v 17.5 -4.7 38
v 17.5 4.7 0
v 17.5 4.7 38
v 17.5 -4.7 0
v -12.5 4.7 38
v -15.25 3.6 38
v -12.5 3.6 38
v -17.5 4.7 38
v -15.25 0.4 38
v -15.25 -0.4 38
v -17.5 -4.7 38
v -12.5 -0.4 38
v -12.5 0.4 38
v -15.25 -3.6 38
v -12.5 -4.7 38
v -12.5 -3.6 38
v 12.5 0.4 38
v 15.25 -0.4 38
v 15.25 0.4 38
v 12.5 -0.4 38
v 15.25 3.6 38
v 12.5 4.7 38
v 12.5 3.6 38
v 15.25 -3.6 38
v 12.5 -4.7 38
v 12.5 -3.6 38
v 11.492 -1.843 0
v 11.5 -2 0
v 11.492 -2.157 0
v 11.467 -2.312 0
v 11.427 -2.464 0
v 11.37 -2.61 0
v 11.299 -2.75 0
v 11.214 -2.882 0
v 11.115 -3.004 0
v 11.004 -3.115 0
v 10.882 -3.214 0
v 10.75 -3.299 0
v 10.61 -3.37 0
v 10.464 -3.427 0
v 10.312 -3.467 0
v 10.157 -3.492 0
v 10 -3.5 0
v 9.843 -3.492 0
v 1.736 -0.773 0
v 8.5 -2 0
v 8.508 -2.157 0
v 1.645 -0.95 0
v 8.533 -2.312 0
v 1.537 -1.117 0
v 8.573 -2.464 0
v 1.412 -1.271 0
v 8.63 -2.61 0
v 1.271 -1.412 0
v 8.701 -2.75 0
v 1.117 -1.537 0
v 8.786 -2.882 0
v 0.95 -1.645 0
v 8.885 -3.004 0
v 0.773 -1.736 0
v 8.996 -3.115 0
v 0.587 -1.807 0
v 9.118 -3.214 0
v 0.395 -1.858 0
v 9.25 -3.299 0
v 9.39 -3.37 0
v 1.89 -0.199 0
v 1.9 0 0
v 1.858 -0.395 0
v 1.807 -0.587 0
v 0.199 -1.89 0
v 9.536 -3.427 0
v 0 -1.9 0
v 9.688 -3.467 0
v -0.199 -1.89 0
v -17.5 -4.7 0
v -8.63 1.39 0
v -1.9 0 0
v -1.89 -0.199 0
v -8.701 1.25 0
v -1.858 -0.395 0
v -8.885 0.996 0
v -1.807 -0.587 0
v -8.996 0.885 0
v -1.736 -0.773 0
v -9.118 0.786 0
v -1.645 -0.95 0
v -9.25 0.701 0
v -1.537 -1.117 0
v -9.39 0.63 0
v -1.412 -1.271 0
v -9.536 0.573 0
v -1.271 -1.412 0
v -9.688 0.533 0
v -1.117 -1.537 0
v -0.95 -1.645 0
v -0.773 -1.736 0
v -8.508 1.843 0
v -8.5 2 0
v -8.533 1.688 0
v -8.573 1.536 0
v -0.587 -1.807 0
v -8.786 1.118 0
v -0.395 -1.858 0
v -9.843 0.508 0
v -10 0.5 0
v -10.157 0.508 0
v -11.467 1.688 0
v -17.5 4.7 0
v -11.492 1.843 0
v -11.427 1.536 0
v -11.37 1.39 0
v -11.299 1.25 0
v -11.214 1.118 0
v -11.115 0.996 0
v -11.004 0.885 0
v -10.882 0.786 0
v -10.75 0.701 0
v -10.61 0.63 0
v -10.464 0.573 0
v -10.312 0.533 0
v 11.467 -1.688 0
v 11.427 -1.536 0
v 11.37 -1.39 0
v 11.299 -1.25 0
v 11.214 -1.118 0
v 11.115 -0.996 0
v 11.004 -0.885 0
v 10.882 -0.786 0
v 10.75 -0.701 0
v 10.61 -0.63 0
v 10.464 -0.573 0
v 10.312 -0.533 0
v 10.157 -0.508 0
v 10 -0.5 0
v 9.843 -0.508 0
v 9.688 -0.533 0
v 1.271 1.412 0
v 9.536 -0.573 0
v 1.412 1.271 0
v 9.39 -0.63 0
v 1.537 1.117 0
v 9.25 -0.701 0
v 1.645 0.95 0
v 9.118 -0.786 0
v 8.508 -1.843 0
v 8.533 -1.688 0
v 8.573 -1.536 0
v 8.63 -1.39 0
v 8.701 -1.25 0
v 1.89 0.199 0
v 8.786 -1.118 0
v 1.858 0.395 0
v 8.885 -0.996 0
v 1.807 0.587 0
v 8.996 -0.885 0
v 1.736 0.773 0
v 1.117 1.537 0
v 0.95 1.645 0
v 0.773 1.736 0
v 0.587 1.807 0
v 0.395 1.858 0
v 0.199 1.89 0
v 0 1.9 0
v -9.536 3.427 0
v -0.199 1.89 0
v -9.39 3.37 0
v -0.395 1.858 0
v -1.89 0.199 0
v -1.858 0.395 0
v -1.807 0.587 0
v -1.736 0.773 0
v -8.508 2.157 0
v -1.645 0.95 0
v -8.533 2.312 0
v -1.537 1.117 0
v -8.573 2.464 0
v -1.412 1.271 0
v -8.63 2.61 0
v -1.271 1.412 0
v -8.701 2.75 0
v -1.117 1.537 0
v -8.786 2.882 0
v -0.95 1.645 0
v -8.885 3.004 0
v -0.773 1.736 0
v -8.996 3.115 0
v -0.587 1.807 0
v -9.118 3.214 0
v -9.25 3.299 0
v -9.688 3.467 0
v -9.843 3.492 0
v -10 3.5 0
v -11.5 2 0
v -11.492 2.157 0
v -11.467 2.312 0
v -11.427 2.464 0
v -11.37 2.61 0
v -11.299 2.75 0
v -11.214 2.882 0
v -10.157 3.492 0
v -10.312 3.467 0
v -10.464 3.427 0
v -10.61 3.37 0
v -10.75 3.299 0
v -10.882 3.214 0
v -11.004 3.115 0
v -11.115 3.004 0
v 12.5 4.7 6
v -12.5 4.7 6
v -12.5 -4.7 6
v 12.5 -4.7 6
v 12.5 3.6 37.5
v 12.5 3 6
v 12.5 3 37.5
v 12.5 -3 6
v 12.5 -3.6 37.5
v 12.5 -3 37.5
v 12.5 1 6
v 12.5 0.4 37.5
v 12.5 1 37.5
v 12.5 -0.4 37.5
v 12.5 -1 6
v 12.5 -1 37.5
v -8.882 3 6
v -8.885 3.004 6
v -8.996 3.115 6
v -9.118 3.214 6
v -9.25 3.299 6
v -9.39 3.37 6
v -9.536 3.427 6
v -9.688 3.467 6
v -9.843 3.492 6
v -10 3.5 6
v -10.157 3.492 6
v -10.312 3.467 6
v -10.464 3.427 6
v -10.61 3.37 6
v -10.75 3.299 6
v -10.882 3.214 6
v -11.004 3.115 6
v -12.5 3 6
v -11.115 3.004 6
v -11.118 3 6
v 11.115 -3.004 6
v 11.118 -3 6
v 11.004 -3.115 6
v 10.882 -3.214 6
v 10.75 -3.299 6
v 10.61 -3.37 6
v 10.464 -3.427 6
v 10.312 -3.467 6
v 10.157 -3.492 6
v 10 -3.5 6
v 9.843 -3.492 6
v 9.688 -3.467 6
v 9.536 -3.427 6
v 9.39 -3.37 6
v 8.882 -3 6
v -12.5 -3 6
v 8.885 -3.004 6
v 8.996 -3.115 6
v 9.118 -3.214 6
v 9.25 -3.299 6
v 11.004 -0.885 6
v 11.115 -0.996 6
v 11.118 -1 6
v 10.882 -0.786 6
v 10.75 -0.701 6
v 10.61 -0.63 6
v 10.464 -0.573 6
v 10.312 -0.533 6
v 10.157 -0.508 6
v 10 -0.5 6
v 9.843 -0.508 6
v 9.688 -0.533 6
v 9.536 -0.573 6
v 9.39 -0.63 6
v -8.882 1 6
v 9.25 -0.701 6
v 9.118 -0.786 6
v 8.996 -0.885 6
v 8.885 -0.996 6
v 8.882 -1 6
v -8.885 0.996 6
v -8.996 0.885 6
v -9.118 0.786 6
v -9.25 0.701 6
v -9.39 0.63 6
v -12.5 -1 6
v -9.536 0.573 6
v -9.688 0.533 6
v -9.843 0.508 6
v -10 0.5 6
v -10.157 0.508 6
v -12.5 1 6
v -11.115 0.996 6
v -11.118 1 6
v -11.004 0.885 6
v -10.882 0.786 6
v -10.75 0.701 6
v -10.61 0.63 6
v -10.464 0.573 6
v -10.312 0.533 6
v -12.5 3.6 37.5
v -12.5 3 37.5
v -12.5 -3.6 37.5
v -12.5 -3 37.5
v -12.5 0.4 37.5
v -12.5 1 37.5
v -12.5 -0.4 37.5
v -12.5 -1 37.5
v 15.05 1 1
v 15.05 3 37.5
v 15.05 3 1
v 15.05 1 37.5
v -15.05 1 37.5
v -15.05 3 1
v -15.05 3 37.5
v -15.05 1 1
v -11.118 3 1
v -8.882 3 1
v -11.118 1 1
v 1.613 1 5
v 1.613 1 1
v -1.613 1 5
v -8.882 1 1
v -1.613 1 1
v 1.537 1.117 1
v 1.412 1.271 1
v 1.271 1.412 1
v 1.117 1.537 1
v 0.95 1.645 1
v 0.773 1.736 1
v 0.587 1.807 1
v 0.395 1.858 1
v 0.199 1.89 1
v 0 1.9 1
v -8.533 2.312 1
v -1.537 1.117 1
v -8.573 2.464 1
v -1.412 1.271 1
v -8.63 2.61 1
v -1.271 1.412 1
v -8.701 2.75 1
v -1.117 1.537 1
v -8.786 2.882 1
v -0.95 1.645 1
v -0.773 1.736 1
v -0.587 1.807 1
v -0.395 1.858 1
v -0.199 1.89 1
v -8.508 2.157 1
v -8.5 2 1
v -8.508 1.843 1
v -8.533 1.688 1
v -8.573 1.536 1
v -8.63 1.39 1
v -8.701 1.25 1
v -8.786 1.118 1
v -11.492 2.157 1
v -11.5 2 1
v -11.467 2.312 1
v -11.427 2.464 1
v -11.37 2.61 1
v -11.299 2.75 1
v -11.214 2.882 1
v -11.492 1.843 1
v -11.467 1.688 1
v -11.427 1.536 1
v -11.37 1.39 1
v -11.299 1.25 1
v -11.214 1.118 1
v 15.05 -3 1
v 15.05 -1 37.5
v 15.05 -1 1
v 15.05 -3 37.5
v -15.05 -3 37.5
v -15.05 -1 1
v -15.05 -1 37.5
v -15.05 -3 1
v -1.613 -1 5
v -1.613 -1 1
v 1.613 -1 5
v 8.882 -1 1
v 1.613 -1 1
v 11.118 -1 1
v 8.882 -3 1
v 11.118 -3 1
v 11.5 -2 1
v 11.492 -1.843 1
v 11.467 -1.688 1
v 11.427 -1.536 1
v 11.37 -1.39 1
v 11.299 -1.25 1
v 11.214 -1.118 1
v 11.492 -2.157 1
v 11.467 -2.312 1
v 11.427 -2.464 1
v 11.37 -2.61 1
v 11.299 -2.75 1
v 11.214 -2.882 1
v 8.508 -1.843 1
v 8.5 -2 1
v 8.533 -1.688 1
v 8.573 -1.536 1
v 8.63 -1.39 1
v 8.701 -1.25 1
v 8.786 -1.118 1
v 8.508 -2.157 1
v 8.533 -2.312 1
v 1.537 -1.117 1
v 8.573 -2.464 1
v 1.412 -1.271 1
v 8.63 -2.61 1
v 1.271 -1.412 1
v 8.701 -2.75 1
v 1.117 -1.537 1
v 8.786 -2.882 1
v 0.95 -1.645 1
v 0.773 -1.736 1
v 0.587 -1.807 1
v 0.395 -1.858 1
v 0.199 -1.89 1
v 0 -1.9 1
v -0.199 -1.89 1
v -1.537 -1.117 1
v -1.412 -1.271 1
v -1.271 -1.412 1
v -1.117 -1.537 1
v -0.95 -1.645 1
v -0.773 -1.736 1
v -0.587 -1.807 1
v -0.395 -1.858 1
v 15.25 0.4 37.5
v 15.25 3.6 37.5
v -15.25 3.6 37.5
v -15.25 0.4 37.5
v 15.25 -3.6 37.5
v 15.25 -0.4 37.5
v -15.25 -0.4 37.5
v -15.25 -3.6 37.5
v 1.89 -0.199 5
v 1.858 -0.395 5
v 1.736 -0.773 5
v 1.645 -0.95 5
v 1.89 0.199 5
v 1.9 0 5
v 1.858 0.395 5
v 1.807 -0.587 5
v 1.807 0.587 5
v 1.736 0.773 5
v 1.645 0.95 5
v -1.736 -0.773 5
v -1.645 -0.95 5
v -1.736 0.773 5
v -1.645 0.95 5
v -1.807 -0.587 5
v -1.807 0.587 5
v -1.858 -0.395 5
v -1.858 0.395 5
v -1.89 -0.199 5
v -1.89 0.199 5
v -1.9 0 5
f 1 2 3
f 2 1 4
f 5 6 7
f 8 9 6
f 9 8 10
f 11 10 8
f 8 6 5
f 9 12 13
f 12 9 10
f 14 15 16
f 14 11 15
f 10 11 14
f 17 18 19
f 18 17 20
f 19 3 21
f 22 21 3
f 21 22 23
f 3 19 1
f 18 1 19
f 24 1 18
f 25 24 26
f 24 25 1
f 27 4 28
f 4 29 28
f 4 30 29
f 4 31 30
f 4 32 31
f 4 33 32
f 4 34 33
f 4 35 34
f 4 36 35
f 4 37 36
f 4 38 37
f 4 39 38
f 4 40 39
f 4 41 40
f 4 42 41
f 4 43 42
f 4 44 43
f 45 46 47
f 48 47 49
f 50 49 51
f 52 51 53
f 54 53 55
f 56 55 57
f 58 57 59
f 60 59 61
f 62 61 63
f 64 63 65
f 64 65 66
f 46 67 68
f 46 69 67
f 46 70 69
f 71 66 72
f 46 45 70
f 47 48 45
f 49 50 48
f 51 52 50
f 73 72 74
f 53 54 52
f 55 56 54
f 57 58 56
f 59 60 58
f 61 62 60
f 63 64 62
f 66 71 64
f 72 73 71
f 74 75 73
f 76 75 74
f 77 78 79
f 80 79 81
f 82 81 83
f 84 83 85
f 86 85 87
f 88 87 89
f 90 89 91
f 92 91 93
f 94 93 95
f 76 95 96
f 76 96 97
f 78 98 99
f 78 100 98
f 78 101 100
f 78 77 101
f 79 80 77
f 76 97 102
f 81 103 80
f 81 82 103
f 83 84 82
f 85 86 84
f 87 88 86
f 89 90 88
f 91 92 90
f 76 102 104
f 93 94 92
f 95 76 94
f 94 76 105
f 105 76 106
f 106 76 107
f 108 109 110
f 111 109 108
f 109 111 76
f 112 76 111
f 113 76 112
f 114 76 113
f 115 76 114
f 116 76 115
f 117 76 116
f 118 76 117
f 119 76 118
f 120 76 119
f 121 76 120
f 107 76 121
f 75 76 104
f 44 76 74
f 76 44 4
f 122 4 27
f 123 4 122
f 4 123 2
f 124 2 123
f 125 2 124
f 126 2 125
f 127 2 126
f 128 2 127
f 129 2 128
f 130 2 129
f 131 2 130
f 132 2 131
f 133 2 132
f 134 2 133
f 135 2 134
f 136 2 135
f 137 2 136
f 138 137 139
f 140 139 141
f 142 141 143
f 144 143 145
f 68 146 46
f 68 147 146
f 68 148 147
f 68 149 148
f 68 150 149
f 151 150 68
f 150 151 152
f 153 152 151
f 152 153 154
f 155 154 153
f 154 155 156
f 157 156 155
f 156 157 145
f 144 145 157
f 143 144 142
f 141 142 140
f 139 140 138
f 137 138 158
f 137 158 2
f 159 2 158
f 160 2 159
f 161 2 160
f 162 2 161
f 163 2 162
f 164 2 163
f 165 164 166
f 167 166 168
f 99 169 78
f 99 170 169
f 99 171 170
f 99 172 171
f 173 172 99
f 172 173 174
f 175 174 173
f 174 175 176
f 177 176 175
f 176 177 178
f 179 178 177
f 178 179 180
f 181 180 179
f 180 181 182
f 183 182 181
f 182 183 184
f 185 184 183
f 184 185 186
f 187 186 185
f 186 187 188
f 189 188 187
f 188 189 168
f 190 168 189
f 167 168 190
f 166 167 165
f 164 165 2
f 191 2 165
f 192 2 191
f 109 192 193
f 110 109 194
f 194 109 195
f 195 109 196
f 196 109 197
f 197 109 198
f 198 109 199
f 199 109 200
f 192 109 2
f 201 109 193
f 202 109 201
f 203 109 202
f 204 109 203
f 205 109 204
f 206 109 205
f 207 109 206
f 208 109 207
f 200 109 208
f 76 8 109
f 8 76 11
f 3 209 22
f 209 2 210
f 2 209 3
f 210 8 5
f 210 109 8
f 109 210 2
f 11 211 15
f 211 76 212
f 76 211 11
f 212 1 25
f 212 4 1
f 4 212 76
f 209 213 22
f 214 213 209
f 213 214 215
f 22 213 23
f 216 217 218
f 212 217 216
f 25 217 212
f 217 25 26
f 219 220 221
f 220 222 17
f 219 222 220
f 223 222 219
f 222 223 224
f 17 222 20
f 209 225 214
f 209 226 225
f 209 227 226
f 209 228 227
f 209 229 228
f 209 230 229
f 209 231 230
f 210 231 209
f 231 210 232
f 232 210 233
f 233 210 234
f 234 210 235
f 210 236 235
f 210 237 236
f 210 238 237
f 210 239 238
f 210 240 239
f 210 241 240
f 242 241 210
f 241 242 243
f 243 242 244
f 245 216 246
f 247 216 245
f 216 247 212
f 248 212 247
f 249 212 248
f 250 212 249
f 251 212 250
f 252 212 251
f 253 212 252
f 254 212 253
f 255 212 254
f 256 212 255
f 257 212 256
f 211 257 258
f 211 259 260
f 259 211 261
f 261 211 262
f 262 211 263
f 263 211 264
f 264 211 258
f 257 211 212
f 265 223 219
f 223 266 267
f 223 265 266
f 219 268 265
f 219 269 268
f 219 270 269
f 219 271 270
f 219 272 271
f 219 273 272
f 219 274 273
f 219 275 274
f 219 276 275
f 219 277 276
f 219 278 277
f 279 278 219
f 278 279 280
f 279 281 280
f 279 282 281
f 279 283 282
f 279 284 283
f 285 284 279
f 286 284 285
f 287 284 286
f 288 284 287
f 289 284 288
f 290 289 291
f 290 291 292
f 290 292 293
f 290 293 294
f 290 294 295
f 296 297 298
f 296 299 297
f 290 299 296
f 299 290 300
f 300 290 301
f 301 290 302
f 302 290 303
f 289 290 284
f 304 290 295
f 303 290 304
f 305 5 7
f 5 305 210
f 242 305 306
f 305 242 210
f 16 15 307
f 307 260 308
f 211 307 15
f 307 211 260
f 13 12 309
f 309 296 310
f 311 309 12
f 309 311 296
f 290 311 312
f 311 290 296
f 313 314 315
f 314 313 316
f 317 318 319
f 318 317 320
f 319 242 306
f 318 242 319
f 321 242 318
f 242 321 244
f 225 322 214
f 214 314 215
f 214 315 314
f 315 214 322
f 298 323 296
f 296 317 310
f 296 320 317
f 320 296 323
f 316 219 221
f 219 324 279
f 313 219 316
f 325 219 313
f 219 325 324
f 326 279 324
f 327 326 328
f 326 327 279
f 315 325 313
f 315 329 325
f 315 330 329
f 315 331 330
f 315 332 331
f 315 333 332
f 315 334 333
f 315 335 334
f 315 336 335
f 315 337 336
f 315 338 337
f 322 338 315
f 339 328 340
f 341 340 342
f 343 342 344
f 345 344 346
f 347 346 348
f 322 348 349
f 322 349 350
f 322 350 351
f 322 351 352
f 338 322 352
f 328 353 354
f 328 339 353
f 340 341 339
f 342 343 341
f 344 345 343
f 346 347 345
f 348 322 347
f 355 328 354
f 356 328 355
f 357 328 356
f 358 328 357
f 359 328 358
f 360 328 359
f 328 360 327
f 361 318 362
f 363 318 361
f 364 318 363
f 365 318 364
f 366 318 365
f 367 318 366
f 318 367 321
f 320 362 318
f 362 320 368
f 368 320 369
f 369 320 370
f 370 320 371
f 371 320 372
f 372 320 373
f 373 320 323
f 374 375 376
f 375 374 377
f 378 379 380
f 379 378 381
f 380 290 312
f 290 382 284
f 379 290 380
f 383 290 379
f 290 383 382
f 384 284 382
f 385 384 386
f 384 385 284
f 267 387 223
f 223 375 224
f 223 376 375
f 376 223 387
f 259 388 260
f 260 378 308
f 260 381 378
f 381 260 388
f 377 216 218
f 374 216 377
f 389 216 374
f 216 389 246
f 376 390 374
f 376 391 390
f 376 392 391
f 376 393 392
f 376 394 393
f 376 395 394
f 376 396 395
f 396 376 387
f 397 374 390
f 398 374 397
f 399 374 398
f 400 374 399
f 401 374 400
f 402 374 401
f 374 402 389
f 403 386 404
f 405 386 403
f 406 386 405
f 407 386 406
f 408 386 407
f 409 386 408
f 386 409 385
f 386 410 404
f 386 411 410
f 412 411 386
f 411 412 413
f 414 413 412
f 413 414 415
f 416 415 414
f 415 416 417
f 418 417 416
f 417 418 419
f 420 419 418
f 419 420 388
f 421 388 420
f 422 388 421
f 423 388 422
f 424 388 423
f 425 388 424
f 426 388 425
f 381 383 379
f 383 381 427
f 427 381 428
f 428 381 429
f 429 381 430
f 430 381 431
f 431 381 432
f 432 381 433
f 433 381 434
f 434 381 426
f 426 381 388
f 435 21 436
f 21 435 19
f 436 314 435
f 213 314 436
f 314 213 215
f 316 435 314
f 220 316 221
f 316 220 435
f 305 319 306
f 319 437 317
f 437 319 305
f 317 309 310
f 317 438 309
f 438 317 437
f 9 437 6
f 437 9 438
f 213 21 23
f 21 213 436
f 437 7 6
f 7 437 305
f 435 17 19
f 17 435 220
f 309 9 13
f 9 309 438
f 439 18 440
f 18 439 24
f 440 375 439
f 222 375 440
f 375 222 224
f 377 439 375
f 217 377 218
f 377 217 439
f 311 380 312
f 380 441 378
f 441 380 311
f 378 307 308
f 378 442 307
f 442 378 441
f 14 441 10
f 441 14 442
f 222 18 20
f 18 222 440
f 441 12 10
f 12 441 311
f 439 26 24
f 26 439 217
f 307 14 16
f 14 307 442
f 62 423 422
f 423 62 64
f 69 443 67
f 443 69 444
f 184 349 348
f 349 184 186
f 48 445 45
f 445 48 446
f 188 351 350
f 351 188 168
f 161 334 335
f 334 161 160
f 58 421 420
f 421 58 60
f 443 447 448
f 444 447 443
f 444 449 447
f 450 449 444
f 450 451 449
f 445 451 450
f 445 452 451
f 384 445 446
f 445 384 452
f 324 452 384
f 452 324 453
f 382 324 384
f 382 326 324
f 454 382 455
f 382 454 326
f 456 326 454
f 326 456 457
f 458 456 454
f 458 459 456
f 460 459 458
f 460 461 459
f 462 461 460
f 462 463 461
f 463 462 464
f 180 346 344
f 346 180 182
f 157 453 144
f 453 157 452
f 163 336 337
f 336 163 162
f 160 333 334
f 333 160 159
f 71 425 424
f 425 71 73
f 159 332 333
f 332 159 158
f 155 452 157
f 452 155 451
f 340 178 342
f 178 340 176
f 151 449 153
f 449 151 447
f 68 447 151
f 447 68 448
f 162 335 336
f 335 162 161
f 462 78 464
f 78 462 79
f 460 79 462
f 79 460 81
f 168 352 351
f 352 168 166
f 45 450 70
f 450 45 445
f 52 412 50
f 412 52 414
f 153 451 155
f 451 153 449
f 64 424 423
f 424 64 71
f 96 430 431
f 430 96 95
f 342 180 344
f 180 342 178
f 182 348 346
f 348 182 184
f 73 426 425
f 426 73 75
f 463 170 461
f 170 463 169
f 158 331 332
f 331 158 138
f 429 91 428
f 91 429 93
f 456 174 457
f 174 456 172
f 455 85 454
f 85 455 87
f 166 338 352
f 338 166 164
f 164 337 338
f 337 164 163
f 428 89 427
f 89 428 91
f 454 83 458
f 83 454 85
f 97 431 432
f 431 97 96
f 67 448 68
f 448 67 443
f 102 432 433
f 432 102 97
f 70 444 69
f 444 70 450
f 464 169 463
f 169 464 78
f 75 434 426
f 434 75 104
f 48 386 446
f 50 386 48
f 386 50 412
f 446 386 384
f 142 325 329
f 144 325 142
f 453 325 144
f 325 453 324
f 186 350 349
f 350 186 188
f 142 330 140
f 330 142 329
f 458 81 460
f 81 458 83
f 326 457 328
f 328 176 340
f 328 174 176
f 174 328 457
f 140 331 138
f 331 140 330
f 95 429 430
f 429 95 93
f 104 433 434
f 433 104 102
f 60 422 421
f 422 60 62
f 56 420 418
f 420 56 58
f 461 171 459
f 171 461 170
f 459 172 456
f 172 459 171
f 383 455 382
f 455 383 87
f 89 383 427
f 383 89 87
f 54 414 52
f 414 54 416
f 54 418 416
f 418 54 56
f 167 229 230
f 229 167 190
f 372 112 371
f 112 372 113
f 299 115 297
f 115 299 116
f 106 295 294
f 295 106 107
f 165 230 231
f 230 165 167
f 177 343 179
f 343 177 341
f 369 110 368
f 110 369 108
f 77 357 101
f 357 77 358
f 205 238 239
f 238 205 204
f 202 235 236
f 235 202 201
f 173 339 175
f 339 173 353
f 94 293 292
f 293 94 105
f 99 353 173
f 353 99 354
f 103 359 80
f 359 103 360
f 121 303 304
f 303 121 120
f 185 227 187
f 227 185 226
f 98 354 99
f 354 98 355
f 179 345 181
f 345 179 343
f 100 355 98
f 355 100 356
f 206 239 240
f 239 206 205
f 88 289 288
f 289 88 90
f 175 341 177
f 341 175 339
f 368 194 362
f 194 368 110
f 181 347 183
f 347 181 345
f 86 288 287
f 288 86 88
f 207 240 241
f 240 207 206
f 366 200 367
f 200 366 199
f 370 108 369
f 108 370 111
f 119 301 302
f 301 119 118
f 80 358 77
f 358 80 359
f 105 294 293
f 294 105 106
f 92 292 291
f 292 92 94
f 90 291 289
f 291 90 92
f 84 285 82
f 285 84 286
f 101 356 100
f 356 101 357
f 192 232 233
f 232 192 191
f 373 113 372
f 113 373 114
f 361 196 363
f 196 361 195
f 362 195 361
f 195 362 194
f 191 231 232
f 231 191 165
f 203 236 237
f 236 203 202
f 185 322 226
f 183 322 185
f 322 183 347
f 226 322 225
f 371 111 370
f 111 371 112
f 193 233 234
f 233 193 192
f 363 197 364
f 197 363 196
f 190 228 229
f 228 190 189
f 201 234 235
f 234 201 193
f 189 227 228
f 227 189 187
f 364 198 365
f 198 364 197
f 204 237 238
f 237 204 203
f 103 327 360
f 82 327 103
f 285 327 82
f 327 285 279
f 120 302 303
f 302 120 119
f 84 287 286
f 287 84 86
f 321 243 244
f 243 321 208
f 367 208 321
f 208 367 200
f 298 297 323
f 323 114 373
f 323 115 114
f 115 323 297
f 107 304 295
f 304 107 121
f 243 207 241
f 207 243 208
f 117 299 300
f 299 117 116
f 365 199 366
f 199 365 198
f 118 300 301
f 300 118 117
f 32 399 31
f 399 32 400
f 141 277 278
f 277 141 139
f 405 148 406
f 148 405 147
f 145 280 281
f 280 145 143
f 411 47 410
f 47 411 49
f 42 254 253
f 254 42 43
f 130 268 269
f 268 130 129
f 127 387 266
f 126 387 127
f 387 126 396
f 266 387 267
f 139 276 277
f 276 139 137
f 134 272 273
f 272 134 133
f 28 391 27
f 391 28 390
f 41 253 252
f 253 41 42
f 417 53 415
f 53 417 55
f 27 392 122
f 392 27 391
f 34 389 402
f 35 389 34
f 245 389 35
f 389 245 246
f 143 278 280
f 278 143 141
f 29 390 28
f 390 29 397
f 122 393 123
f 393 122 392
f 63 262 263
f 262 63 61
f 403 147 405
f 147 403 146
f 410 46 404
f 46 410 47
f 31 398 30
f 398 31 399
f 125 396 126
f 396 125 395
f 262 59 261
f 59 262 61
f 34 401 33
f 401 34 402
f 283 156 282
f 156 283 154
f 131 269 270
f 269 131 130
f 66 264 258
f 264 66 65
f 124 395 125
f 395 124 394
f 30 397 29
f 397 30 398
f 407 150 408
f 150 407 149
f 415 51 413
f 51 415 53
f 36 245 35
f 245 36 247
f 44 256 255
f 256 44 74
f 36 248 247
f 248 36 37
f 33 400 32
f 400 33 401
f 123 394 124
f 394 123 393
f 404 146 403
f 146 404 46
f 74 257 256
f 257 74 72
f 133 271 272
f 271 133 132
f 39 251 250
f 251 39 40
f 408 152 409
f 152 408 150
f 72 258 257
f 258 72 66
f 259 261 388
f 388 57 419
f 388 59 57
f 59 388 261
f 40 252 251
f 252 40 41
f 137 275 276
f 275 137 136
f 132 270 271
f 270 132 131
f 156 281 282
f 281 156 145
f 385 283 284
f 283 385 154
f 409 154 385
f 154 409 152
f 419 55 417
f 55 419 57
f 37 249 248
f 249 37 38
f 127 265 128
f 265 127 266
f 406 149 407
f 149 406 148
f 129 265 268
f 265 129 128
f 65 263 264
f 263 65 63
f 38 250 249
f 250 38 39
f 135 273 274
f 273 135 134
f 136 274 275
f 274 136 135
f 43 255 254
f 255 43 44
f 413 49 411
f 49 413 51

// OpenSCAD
// Suporte em Moldura para Placas de Titânio de Eletrólise - Projeto IARA
// Design "Window Frame" com encaixe por pressão e montagem inferior para ventosa
// Unidades: Milímetros (mm)

/* [Dimensões das Placas de Titânio] */
// Largura da placa (mm). Ex: 30 para a placa de 3x4
plate_width = 30.0;
// Espessura da chapa de titânio (mm)
plate_thickness = 1.9;
// Distância exata desejada entre as duas placas (mm)
gap_between_plates = 2.0;

/* [Dimensões da Moldura (Frame)] */
// Altura da moldura plástica.
// Com 36mm, uma placa de 40mm fica um tiquinho exposta no topo (embora agora os fios passarão por baixo)
frame_height = 38.0;

// O quanto a moldura cobre a esquerda e a direita da placa (mm)
side_overlap = 2.5;

// Espessura do "chão" da moldura. Fica na parte inferior para ter massa pro parafuso da ventosa.
// O rasgo da placa desce (wire_seal_depth) dentro desse chão → sobra (bottom_bar_height - wire_seal_depth) de parede sólida no fundo.
bottom_bar_height = 6.0;

// Espessura das paredes externas (Frente e Trás)
wall_thickness = 1.7;

// Tolerância extra no rasgo (slot) pro encaixe de "presilha por pressão" (fricção)
tolerance = 0.1;

/* [Furos para os Fios de Contato (Na Base Inferior)] */
// Diâmetro dos furos para passar os fios (para poder fixar eles por baixo das placas)
wire_hole_d = 3;
// Profundidade da cava na base do furo (para aplicar silicone de aquário e isolar o cobre)
wire_seal_depth = 5.0;

/* [Montagem da Ventosa na Face de Baixo] */
// 1 = Gerar um Pino (para encaixar em uma ventosa de borracha com furo)
// 2 = Gerar um Furo (para ventosas que possuem parafuso ou rosca embutida)
ventosa_mount_type = 2;

// --- Configurações se usar PINO (ventosa_mount_type = 1) ---
ventosa_neck_d = 5.5;
ventosa_head_d = 8.5;
ventosa_neck_h = 4.0;

// --- Configurações se usar FURO/PARAFUSO (ventosa_mount_type = 2) ---
// Exemplo: 4.0 para furar livre p/ M4, ou 3.8mm para roscar apertado direto no plástico M4.
ventosa_screw_hole_d = 3.8;
ventosa_screw_hole_depth = 5.0;

/* [Hidden] */
$fn = 60;
slot_w = plate_thickness + tolerance;

total_w = plate_width + (side_overlap * 2);
total_d = gap_between_plates + (slot_w * 2) + (wall_thickness * 2);
total_h = frame_height;

module ventosa_peg() {
  // Pescoço
  cylinder(h=ventosa_neck_h + 0.1, d=ventosa_neck_d);
  // Cabeça
  translate([0, 0, ventosa_neck_h])
    cylinder(h=2.5, d1=ventosa_head_d, d2=ventosa_neck_d - 1.0);
}

module frame() {
  difference() {
    // Corpo Base (Bloco sólido dimensionado com as medidas externas)
    translate([0, 0, total_h / 2])
      cube([total_w, total_d, total_h], center=true);

    // Recorte da Janela Central (Deixa o centro das placas 100% exposto à água!)
    translate([0, 0, bottom_bar_height + total_h / 2])
      cube([plate_width - (side_overlap * 2), total_d + 2.0, total_h], center=true);

    // Fenda para a Primeira Placa (Frontal)
    translate([0, (gap_between_plates / 2) + (slot_w / 2), bottom_bar_height + total_h / 2])
      cube([plate_width + tolerance, slot_w, total_h + 2.0], center=true);
    // Cava inferior da fenda (desce wire_seal_depth no bottom_bar — aplique silicone aqui para isolar o cobre)
    translate([0, (gap_between_plates / 2) + (slot_w / 2), bottom_bar_height - wire_seal_depth / 2 + 0.5])
      cube([plate_width + tolerance, slot_w, wire_seal_depth + 1], center=true);

    // Fenda para a Segunda Placa (Traseira)
    translate([0, -(gap_between_plates / 2) - (slot_w / 2), bottom_bar_height + total_h / 2])
      cube([plate_width + tolerance, slot_w, total_h + 2.0], center=true);
    // Cava inferior da fenda (desce wire_seal_depth no bottom_bar — aplique silicone aqui para isolar o cobre)
    translate([0, -(gap_between_plates / 2) - (slot_w / 2), bottom_bar_height - wire_seal_depth / 2 + 0.5])
      cube([plate_width + tolerance, slot_w, wire_seal_depth + 1], center=true);

    // Chanfro Superior suave nas fendas
    translate([0, (gap_between_plates / 2) + (slot_w / 2), total_h + 0.5])
      cube([plate_width + 0.5, slot_w + 1.2, 2.0], center=true);
    translate([0, -(gap_between_plates / 2) - (slot_w / 2), total_h + 0.5])
      cube([plate_width + 0.5, slot_w + 1.2, 2.0], center=true);

    // --- FURO CENTRAL DA VENTOSA NA FACE DE BAIXO ---
    if (ventosa_mount_type == 2) {
      // Um furo cilíndrico na parte de baixo para rosquear o parafuso da ventosa
      translate([0, 0, -1])
        cylinder(h=ventosa_screw_hole_depth + 1.0, d=ventosa_screw_hole_d);
    }

    // --- BURACOS PARA PUXAR O FIO DE CONTATO ---
    // Para evitar curto-circuito, fiz um buraco na ESQUERDA indo para a Placa FRONTAL
    // e um buraco na DIREITA indo para a Placa TRASEIRA.
    // Desse forma os fios ficam bem separados.
    //
    // Cada furo tem uma cava de wire_seal_depth na base: insira o cobre e vede com silicone de aquário.

    // Furo Esquerdo (Placa Frontal) — cava de silicone + canal até o rasgo
    translate([-plate_width / 3, (gap_between_plates / 2) + (slot_w / 2), -1])
      cylinder(h=wire_seal_depth + 1, d=wire_hole_d);
    translate([-plate_width / 3, (gap_between_plates / 2) + (slot_w / 2), wire_seal_depth - 1])
      cylinder(h=bottom_bar_height - wire_seal_depth + 3.0, d=wire_hole_d);

    // Furo Direito (Placa Traseira) — cava de silicone + canal até o rasgo
    translate([plate_width / 3, -(gap_between_plates / 2) - (slot_w / 2), -1])
      cylinder(h=wire_seal_depth + 1, d=wire_hole_d);
    translate([plate_width / 3, -(gap_between_plates / 2) - (slot_w / 2), wire_seal_depth - 1])
      cylinder(h=bottom_bar_height - wire_seal_depth + 3.0, d=wire_hole_d);
  }

  // Pino Adicionado se for ventosa tipo pino
  if (ventosa_mount_type == 1) {
    // Apontando para baixo (-Z)
    translate([0, 0, 0])
      rotate([180, 0, 0])
        ventosa_peg();
  }
}

// Renderizar (Como os furos estão embaixo, a impressão sai limpa com uma pequena ponte)
frame();
